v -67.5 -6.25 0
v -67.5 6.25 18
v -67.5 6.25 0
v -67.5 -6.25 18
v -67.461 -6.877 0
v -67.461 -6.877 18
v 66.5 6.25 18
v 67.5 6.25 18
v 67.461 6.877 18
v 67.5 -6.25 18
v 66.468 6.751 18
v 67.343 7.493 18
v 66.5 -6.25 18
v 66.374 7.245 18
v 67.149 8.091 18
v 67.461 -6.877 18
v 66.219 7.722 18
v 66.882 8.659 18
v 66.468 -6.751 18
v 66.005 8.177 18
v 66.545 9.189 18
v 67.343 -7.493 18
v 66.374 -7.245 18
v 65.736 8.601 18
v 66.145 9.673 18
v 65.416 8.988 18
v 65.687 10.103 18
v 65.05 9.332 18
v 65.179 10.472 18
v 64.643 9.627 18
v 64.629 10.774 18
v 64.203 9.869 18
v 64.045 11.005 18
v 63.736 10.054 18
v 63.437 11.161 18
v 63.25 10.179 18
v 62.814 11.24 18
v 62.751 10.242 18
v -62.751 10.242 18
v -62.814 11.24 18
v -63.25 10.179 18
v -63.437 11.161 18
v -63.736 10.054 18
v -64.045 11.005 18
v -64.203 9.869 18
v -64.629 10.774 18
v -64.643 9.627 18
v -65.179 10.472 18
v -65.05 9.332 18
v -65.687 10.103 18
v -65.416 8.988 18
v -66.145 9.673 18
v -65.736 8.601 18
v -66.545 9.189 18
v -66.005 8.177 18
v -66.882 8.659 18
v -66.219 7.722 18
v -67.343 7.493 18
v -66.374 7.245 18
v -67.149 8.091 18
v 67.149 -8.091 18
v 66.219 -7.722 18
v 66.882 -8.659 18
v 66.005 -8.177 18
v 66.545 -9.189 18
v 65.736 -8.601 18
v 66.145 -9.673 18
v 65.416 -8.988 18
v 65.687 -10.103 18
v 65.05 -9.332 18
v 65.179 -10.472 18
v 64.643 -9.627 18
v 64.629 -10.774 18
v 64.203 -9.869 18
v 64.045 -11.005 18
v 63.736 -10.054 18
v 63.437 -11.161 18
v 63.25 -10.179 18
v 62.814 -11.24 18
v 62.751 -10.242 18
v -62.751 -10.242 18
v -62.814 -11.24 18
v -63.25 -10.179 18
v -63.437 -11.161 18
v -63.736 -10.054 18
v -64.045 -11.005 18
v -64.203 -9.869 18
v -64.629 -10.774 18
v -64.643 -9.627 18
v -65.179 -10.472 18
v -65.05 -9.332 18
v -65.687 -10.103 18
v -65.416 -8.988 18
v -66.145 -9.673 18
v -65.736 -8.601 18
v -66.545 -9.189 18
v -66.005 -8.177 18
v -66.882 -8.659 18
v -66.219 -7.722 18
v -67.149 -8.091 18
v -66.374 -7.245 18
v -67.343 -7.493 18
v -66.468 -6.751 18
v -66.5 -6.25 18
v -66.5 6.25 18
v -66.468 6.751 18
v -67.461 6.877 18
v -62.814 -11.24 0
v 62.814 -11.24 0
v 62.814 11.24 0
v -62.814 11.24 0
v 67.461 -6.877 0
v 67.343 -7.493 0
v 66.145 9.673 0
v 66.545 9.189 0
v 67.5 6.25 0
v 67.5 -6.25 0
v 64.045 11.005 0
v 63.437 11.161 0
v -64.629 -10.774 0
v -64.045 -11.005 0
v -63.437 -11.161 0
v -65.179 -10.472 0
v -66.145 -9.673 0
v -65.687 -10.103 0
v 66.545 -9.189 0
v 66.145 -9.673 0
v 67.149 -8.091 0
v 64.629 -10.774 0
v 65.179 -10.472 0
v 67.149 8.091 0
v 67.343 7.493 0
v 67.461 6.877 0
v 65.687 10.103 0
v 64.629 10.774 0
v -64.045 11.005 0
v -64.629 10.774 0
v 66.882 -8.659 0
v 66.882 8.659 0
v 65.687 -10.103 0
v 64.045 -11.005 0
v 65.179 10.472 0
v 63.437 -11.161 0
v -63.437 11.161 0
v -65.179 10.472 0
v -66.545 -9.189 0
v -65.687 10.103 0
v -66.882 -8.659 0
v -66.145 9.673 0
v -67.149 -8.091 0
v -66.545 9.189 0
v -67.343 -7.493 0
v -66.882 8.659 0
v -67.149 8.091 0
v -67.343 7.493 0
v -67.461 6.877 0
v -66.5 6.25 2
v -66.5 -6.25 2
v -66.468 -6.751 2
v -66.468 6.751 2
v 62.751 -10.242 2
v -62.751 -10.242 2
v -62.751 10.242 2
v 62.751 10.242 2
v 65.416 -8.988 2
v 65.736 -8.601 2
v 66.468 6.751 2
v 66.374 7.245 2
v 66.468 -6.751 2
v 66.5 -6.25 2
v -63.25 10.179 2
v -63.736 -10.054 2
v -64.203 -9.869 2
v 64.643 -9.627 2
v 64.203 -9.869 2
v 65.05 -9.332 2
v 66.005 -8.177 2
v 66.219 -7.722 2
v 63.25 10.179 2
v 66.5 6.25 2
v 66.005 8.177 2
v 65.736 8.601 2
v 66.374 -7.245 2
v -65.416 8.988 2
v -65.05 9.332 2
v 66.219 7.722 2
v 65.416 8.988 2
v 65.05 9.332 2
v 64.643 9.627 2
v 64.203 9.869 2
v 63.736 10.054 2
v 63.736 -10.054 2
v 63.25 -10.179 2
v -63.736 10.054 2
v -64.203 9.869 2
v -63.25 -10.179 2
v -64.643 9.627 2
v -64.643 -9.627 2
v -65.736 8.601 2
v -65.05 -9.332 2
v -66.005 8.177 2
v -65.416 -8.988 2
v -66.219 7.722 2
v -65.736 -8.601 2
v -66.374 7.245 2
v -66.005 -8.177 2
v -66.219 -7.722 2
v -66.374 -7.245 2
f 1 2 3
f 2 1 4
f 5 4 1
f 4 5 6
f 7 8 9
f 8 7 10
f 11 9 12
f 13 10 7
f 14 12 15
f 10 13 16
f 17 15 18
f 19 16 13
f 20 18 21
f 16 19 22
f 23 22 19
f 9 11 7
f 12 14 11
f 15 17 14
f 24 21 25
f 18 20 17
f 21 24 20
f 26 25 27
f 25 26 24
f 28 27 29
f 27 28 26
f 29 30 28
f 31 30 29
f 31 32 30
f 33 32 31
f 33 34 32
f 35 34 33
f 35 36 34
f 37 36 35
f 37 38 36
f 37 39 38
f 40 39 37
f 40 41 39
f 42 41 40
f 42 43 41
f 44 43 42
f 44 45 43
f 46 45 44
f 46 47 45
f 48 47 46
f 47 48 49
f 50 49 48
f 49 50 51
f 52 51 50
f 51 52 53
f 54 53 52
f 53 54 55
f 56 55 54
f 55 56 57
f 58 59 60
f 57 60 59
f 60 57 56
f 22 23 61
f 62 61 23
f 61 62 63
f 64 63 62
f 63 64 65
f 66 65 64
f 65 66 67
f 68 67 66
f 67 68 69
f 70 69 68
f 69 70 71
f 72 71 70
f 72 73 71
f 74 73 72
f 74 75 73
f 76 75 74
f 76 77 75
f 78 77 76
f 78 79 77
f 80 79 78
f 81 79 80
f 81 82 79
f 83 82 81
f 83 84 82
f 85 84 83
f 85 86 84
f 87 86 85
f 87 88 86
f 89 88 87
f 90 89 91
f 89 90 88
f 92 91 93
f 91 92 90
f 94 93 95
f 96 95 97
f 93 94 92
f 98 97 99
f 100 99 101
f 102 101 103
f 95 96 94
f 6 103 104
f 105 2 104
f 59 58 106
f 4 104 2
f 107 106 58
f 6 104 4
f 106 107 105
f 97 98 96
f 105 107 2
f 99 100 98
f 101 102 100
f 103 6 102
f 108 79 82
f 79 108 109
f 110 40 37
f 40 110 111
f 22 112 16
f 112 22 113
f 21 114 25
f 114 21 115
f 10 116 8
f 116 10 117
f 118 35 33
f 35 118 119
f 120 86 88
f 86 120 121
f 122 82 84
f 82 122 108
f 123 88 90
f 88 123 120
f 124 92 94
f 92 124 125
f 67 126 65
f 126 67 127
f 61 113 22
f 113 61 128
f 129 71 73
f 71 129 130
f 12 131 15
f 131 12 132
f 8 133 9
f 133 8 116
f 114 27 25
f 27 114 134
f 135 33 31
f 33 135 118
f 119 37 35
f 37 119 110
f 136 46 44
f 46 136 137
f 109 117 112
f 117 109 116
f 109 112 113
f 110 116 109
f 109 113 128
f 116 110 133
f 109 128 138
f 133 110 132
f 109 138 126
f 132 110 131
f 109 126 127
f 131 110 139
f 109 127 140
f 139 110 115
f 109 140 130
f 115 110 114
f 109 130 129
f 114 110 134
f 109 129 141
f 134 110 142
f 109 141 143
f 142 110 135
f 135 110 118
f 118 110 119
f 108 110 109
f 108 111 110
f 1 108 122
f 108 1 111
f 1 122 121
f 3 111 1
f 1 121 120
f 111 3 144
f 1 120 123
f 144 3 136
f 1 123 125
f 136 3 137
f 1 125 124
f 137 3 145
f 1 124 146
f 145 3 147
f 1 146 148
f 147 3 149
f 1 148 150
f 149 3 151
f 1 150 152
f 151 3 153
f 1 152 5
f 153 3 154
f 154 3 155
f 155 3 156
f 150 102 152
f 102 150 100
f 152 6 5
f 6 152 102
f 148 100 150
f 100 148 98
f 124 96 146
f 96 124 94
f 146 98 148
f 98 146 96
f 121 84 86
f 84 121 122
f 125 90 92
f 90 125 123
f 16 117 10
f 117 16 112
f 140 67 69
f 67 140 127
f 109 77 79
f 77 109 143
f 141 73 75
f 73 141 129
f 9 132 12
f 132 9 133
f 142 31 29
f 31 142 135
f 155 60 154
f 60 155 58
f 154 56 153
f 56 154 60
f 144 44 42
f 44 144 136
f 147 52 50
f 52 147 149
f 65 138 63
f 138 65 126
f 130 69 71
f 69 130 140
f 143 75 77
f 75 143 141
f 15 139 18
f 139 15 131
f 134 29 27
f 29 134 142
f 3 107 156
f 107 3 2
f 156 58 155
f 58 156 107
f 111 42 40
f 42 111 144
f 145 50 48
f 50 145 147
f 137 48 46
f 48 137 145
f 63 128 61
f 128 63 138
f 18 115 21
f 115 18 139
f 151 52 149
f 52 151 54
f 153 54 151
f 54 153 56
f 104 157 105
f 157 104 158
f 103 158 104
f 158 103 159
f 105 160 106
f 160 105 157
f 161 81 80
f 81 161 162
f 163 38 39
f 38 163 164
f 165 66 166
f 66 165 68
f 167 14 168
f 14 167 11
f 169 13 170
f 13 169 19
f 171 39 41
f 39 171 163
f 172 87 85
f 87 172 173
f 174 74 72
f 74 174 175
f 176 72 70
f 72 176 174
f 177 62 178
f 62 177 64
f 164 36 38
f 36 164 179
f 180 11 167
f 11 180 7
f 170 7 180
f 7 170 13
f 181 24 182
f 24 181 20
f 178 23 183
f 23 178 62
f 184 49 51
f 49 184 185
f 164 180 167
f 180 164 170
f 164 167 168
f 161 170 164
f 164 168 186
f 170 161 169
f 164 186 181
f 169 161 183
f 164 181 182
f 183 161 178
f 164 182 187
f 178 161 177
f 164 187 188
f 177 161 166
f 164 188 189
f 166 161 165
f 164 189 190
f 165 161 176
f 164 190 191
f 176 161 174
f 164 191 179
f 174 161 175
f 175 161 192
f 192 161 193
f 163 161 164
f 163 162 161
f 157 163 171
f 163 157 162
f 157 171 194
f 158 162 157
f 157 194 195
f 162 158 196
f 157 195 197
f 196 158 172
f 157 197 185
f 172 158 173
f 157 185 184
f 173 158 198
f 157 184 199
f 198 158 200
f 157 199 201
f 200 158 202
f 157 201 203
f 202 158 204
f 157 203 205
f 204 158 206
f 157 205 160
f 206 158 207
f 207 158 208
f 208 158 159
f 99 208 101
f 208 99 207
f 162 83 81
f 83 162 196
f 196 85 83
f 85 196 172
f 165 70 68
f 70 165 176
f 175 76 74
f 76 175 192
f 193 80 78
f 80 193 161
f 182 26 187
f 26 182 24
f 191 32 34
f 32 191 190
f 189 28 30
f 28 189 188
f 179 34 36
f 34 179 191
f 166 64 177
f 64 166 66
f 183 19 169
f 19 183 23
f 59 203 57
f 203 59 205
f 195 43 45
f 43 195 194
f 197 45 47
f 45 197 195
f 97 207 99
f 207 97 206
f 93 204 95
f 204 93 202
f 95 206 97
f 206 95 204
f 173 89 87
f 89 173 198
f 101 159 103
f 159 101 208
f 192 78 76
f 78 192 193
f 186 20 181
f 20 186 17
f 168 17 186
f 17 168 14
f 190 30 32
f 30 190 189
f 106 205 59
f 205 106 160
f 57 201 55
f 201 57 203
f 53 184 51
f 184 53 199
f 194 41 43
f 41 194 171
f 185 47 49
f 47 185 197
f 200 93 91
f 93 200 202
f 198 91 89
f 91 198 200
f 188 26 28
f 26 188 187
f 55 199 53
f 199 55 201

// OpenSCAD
$fn = 50;


difference() {
	union() {
		hull() {
			translate(v = [-62.5000000000, 6.2500000000, 0]) {
				cylinder(h = 18, r = 5);
			}
			translate(v = [62.5000000000, 6.2500000000, 0]) {
				cylinder(h = 18, r = 5);
			}
			translate(v = [-62.5000000000, -6.2500000000, 0]) {
				cylinder(h = 18, r = 5);
			}
			translate(v = [62.5000000000, -6.2500000000, 0]) {
				cylinder(h = 18, r = 5);
			}
		}
	}
	union() {
		translate(v = [0, 0, 2]) {
			hull() {
				translate(v = [-62.5000000000, 6.2500000000, 0]) {
					cylinder(h = 16, r = 4);
				}
				translate(v = [62.5000000000, 6.2500000000, 0]) {
					cylinder(h = 16, r = 4);
				}
				translate(v = [-62.5000000000, -6.2500000000, 0]) {
					cylinder(h = 16, r = 4);
				}
				translate(v = [62.5000000000, -6.2500000000, 0]) {
					cylinder(h = 16, r = 4);
				}
			}
		}
	}
}
